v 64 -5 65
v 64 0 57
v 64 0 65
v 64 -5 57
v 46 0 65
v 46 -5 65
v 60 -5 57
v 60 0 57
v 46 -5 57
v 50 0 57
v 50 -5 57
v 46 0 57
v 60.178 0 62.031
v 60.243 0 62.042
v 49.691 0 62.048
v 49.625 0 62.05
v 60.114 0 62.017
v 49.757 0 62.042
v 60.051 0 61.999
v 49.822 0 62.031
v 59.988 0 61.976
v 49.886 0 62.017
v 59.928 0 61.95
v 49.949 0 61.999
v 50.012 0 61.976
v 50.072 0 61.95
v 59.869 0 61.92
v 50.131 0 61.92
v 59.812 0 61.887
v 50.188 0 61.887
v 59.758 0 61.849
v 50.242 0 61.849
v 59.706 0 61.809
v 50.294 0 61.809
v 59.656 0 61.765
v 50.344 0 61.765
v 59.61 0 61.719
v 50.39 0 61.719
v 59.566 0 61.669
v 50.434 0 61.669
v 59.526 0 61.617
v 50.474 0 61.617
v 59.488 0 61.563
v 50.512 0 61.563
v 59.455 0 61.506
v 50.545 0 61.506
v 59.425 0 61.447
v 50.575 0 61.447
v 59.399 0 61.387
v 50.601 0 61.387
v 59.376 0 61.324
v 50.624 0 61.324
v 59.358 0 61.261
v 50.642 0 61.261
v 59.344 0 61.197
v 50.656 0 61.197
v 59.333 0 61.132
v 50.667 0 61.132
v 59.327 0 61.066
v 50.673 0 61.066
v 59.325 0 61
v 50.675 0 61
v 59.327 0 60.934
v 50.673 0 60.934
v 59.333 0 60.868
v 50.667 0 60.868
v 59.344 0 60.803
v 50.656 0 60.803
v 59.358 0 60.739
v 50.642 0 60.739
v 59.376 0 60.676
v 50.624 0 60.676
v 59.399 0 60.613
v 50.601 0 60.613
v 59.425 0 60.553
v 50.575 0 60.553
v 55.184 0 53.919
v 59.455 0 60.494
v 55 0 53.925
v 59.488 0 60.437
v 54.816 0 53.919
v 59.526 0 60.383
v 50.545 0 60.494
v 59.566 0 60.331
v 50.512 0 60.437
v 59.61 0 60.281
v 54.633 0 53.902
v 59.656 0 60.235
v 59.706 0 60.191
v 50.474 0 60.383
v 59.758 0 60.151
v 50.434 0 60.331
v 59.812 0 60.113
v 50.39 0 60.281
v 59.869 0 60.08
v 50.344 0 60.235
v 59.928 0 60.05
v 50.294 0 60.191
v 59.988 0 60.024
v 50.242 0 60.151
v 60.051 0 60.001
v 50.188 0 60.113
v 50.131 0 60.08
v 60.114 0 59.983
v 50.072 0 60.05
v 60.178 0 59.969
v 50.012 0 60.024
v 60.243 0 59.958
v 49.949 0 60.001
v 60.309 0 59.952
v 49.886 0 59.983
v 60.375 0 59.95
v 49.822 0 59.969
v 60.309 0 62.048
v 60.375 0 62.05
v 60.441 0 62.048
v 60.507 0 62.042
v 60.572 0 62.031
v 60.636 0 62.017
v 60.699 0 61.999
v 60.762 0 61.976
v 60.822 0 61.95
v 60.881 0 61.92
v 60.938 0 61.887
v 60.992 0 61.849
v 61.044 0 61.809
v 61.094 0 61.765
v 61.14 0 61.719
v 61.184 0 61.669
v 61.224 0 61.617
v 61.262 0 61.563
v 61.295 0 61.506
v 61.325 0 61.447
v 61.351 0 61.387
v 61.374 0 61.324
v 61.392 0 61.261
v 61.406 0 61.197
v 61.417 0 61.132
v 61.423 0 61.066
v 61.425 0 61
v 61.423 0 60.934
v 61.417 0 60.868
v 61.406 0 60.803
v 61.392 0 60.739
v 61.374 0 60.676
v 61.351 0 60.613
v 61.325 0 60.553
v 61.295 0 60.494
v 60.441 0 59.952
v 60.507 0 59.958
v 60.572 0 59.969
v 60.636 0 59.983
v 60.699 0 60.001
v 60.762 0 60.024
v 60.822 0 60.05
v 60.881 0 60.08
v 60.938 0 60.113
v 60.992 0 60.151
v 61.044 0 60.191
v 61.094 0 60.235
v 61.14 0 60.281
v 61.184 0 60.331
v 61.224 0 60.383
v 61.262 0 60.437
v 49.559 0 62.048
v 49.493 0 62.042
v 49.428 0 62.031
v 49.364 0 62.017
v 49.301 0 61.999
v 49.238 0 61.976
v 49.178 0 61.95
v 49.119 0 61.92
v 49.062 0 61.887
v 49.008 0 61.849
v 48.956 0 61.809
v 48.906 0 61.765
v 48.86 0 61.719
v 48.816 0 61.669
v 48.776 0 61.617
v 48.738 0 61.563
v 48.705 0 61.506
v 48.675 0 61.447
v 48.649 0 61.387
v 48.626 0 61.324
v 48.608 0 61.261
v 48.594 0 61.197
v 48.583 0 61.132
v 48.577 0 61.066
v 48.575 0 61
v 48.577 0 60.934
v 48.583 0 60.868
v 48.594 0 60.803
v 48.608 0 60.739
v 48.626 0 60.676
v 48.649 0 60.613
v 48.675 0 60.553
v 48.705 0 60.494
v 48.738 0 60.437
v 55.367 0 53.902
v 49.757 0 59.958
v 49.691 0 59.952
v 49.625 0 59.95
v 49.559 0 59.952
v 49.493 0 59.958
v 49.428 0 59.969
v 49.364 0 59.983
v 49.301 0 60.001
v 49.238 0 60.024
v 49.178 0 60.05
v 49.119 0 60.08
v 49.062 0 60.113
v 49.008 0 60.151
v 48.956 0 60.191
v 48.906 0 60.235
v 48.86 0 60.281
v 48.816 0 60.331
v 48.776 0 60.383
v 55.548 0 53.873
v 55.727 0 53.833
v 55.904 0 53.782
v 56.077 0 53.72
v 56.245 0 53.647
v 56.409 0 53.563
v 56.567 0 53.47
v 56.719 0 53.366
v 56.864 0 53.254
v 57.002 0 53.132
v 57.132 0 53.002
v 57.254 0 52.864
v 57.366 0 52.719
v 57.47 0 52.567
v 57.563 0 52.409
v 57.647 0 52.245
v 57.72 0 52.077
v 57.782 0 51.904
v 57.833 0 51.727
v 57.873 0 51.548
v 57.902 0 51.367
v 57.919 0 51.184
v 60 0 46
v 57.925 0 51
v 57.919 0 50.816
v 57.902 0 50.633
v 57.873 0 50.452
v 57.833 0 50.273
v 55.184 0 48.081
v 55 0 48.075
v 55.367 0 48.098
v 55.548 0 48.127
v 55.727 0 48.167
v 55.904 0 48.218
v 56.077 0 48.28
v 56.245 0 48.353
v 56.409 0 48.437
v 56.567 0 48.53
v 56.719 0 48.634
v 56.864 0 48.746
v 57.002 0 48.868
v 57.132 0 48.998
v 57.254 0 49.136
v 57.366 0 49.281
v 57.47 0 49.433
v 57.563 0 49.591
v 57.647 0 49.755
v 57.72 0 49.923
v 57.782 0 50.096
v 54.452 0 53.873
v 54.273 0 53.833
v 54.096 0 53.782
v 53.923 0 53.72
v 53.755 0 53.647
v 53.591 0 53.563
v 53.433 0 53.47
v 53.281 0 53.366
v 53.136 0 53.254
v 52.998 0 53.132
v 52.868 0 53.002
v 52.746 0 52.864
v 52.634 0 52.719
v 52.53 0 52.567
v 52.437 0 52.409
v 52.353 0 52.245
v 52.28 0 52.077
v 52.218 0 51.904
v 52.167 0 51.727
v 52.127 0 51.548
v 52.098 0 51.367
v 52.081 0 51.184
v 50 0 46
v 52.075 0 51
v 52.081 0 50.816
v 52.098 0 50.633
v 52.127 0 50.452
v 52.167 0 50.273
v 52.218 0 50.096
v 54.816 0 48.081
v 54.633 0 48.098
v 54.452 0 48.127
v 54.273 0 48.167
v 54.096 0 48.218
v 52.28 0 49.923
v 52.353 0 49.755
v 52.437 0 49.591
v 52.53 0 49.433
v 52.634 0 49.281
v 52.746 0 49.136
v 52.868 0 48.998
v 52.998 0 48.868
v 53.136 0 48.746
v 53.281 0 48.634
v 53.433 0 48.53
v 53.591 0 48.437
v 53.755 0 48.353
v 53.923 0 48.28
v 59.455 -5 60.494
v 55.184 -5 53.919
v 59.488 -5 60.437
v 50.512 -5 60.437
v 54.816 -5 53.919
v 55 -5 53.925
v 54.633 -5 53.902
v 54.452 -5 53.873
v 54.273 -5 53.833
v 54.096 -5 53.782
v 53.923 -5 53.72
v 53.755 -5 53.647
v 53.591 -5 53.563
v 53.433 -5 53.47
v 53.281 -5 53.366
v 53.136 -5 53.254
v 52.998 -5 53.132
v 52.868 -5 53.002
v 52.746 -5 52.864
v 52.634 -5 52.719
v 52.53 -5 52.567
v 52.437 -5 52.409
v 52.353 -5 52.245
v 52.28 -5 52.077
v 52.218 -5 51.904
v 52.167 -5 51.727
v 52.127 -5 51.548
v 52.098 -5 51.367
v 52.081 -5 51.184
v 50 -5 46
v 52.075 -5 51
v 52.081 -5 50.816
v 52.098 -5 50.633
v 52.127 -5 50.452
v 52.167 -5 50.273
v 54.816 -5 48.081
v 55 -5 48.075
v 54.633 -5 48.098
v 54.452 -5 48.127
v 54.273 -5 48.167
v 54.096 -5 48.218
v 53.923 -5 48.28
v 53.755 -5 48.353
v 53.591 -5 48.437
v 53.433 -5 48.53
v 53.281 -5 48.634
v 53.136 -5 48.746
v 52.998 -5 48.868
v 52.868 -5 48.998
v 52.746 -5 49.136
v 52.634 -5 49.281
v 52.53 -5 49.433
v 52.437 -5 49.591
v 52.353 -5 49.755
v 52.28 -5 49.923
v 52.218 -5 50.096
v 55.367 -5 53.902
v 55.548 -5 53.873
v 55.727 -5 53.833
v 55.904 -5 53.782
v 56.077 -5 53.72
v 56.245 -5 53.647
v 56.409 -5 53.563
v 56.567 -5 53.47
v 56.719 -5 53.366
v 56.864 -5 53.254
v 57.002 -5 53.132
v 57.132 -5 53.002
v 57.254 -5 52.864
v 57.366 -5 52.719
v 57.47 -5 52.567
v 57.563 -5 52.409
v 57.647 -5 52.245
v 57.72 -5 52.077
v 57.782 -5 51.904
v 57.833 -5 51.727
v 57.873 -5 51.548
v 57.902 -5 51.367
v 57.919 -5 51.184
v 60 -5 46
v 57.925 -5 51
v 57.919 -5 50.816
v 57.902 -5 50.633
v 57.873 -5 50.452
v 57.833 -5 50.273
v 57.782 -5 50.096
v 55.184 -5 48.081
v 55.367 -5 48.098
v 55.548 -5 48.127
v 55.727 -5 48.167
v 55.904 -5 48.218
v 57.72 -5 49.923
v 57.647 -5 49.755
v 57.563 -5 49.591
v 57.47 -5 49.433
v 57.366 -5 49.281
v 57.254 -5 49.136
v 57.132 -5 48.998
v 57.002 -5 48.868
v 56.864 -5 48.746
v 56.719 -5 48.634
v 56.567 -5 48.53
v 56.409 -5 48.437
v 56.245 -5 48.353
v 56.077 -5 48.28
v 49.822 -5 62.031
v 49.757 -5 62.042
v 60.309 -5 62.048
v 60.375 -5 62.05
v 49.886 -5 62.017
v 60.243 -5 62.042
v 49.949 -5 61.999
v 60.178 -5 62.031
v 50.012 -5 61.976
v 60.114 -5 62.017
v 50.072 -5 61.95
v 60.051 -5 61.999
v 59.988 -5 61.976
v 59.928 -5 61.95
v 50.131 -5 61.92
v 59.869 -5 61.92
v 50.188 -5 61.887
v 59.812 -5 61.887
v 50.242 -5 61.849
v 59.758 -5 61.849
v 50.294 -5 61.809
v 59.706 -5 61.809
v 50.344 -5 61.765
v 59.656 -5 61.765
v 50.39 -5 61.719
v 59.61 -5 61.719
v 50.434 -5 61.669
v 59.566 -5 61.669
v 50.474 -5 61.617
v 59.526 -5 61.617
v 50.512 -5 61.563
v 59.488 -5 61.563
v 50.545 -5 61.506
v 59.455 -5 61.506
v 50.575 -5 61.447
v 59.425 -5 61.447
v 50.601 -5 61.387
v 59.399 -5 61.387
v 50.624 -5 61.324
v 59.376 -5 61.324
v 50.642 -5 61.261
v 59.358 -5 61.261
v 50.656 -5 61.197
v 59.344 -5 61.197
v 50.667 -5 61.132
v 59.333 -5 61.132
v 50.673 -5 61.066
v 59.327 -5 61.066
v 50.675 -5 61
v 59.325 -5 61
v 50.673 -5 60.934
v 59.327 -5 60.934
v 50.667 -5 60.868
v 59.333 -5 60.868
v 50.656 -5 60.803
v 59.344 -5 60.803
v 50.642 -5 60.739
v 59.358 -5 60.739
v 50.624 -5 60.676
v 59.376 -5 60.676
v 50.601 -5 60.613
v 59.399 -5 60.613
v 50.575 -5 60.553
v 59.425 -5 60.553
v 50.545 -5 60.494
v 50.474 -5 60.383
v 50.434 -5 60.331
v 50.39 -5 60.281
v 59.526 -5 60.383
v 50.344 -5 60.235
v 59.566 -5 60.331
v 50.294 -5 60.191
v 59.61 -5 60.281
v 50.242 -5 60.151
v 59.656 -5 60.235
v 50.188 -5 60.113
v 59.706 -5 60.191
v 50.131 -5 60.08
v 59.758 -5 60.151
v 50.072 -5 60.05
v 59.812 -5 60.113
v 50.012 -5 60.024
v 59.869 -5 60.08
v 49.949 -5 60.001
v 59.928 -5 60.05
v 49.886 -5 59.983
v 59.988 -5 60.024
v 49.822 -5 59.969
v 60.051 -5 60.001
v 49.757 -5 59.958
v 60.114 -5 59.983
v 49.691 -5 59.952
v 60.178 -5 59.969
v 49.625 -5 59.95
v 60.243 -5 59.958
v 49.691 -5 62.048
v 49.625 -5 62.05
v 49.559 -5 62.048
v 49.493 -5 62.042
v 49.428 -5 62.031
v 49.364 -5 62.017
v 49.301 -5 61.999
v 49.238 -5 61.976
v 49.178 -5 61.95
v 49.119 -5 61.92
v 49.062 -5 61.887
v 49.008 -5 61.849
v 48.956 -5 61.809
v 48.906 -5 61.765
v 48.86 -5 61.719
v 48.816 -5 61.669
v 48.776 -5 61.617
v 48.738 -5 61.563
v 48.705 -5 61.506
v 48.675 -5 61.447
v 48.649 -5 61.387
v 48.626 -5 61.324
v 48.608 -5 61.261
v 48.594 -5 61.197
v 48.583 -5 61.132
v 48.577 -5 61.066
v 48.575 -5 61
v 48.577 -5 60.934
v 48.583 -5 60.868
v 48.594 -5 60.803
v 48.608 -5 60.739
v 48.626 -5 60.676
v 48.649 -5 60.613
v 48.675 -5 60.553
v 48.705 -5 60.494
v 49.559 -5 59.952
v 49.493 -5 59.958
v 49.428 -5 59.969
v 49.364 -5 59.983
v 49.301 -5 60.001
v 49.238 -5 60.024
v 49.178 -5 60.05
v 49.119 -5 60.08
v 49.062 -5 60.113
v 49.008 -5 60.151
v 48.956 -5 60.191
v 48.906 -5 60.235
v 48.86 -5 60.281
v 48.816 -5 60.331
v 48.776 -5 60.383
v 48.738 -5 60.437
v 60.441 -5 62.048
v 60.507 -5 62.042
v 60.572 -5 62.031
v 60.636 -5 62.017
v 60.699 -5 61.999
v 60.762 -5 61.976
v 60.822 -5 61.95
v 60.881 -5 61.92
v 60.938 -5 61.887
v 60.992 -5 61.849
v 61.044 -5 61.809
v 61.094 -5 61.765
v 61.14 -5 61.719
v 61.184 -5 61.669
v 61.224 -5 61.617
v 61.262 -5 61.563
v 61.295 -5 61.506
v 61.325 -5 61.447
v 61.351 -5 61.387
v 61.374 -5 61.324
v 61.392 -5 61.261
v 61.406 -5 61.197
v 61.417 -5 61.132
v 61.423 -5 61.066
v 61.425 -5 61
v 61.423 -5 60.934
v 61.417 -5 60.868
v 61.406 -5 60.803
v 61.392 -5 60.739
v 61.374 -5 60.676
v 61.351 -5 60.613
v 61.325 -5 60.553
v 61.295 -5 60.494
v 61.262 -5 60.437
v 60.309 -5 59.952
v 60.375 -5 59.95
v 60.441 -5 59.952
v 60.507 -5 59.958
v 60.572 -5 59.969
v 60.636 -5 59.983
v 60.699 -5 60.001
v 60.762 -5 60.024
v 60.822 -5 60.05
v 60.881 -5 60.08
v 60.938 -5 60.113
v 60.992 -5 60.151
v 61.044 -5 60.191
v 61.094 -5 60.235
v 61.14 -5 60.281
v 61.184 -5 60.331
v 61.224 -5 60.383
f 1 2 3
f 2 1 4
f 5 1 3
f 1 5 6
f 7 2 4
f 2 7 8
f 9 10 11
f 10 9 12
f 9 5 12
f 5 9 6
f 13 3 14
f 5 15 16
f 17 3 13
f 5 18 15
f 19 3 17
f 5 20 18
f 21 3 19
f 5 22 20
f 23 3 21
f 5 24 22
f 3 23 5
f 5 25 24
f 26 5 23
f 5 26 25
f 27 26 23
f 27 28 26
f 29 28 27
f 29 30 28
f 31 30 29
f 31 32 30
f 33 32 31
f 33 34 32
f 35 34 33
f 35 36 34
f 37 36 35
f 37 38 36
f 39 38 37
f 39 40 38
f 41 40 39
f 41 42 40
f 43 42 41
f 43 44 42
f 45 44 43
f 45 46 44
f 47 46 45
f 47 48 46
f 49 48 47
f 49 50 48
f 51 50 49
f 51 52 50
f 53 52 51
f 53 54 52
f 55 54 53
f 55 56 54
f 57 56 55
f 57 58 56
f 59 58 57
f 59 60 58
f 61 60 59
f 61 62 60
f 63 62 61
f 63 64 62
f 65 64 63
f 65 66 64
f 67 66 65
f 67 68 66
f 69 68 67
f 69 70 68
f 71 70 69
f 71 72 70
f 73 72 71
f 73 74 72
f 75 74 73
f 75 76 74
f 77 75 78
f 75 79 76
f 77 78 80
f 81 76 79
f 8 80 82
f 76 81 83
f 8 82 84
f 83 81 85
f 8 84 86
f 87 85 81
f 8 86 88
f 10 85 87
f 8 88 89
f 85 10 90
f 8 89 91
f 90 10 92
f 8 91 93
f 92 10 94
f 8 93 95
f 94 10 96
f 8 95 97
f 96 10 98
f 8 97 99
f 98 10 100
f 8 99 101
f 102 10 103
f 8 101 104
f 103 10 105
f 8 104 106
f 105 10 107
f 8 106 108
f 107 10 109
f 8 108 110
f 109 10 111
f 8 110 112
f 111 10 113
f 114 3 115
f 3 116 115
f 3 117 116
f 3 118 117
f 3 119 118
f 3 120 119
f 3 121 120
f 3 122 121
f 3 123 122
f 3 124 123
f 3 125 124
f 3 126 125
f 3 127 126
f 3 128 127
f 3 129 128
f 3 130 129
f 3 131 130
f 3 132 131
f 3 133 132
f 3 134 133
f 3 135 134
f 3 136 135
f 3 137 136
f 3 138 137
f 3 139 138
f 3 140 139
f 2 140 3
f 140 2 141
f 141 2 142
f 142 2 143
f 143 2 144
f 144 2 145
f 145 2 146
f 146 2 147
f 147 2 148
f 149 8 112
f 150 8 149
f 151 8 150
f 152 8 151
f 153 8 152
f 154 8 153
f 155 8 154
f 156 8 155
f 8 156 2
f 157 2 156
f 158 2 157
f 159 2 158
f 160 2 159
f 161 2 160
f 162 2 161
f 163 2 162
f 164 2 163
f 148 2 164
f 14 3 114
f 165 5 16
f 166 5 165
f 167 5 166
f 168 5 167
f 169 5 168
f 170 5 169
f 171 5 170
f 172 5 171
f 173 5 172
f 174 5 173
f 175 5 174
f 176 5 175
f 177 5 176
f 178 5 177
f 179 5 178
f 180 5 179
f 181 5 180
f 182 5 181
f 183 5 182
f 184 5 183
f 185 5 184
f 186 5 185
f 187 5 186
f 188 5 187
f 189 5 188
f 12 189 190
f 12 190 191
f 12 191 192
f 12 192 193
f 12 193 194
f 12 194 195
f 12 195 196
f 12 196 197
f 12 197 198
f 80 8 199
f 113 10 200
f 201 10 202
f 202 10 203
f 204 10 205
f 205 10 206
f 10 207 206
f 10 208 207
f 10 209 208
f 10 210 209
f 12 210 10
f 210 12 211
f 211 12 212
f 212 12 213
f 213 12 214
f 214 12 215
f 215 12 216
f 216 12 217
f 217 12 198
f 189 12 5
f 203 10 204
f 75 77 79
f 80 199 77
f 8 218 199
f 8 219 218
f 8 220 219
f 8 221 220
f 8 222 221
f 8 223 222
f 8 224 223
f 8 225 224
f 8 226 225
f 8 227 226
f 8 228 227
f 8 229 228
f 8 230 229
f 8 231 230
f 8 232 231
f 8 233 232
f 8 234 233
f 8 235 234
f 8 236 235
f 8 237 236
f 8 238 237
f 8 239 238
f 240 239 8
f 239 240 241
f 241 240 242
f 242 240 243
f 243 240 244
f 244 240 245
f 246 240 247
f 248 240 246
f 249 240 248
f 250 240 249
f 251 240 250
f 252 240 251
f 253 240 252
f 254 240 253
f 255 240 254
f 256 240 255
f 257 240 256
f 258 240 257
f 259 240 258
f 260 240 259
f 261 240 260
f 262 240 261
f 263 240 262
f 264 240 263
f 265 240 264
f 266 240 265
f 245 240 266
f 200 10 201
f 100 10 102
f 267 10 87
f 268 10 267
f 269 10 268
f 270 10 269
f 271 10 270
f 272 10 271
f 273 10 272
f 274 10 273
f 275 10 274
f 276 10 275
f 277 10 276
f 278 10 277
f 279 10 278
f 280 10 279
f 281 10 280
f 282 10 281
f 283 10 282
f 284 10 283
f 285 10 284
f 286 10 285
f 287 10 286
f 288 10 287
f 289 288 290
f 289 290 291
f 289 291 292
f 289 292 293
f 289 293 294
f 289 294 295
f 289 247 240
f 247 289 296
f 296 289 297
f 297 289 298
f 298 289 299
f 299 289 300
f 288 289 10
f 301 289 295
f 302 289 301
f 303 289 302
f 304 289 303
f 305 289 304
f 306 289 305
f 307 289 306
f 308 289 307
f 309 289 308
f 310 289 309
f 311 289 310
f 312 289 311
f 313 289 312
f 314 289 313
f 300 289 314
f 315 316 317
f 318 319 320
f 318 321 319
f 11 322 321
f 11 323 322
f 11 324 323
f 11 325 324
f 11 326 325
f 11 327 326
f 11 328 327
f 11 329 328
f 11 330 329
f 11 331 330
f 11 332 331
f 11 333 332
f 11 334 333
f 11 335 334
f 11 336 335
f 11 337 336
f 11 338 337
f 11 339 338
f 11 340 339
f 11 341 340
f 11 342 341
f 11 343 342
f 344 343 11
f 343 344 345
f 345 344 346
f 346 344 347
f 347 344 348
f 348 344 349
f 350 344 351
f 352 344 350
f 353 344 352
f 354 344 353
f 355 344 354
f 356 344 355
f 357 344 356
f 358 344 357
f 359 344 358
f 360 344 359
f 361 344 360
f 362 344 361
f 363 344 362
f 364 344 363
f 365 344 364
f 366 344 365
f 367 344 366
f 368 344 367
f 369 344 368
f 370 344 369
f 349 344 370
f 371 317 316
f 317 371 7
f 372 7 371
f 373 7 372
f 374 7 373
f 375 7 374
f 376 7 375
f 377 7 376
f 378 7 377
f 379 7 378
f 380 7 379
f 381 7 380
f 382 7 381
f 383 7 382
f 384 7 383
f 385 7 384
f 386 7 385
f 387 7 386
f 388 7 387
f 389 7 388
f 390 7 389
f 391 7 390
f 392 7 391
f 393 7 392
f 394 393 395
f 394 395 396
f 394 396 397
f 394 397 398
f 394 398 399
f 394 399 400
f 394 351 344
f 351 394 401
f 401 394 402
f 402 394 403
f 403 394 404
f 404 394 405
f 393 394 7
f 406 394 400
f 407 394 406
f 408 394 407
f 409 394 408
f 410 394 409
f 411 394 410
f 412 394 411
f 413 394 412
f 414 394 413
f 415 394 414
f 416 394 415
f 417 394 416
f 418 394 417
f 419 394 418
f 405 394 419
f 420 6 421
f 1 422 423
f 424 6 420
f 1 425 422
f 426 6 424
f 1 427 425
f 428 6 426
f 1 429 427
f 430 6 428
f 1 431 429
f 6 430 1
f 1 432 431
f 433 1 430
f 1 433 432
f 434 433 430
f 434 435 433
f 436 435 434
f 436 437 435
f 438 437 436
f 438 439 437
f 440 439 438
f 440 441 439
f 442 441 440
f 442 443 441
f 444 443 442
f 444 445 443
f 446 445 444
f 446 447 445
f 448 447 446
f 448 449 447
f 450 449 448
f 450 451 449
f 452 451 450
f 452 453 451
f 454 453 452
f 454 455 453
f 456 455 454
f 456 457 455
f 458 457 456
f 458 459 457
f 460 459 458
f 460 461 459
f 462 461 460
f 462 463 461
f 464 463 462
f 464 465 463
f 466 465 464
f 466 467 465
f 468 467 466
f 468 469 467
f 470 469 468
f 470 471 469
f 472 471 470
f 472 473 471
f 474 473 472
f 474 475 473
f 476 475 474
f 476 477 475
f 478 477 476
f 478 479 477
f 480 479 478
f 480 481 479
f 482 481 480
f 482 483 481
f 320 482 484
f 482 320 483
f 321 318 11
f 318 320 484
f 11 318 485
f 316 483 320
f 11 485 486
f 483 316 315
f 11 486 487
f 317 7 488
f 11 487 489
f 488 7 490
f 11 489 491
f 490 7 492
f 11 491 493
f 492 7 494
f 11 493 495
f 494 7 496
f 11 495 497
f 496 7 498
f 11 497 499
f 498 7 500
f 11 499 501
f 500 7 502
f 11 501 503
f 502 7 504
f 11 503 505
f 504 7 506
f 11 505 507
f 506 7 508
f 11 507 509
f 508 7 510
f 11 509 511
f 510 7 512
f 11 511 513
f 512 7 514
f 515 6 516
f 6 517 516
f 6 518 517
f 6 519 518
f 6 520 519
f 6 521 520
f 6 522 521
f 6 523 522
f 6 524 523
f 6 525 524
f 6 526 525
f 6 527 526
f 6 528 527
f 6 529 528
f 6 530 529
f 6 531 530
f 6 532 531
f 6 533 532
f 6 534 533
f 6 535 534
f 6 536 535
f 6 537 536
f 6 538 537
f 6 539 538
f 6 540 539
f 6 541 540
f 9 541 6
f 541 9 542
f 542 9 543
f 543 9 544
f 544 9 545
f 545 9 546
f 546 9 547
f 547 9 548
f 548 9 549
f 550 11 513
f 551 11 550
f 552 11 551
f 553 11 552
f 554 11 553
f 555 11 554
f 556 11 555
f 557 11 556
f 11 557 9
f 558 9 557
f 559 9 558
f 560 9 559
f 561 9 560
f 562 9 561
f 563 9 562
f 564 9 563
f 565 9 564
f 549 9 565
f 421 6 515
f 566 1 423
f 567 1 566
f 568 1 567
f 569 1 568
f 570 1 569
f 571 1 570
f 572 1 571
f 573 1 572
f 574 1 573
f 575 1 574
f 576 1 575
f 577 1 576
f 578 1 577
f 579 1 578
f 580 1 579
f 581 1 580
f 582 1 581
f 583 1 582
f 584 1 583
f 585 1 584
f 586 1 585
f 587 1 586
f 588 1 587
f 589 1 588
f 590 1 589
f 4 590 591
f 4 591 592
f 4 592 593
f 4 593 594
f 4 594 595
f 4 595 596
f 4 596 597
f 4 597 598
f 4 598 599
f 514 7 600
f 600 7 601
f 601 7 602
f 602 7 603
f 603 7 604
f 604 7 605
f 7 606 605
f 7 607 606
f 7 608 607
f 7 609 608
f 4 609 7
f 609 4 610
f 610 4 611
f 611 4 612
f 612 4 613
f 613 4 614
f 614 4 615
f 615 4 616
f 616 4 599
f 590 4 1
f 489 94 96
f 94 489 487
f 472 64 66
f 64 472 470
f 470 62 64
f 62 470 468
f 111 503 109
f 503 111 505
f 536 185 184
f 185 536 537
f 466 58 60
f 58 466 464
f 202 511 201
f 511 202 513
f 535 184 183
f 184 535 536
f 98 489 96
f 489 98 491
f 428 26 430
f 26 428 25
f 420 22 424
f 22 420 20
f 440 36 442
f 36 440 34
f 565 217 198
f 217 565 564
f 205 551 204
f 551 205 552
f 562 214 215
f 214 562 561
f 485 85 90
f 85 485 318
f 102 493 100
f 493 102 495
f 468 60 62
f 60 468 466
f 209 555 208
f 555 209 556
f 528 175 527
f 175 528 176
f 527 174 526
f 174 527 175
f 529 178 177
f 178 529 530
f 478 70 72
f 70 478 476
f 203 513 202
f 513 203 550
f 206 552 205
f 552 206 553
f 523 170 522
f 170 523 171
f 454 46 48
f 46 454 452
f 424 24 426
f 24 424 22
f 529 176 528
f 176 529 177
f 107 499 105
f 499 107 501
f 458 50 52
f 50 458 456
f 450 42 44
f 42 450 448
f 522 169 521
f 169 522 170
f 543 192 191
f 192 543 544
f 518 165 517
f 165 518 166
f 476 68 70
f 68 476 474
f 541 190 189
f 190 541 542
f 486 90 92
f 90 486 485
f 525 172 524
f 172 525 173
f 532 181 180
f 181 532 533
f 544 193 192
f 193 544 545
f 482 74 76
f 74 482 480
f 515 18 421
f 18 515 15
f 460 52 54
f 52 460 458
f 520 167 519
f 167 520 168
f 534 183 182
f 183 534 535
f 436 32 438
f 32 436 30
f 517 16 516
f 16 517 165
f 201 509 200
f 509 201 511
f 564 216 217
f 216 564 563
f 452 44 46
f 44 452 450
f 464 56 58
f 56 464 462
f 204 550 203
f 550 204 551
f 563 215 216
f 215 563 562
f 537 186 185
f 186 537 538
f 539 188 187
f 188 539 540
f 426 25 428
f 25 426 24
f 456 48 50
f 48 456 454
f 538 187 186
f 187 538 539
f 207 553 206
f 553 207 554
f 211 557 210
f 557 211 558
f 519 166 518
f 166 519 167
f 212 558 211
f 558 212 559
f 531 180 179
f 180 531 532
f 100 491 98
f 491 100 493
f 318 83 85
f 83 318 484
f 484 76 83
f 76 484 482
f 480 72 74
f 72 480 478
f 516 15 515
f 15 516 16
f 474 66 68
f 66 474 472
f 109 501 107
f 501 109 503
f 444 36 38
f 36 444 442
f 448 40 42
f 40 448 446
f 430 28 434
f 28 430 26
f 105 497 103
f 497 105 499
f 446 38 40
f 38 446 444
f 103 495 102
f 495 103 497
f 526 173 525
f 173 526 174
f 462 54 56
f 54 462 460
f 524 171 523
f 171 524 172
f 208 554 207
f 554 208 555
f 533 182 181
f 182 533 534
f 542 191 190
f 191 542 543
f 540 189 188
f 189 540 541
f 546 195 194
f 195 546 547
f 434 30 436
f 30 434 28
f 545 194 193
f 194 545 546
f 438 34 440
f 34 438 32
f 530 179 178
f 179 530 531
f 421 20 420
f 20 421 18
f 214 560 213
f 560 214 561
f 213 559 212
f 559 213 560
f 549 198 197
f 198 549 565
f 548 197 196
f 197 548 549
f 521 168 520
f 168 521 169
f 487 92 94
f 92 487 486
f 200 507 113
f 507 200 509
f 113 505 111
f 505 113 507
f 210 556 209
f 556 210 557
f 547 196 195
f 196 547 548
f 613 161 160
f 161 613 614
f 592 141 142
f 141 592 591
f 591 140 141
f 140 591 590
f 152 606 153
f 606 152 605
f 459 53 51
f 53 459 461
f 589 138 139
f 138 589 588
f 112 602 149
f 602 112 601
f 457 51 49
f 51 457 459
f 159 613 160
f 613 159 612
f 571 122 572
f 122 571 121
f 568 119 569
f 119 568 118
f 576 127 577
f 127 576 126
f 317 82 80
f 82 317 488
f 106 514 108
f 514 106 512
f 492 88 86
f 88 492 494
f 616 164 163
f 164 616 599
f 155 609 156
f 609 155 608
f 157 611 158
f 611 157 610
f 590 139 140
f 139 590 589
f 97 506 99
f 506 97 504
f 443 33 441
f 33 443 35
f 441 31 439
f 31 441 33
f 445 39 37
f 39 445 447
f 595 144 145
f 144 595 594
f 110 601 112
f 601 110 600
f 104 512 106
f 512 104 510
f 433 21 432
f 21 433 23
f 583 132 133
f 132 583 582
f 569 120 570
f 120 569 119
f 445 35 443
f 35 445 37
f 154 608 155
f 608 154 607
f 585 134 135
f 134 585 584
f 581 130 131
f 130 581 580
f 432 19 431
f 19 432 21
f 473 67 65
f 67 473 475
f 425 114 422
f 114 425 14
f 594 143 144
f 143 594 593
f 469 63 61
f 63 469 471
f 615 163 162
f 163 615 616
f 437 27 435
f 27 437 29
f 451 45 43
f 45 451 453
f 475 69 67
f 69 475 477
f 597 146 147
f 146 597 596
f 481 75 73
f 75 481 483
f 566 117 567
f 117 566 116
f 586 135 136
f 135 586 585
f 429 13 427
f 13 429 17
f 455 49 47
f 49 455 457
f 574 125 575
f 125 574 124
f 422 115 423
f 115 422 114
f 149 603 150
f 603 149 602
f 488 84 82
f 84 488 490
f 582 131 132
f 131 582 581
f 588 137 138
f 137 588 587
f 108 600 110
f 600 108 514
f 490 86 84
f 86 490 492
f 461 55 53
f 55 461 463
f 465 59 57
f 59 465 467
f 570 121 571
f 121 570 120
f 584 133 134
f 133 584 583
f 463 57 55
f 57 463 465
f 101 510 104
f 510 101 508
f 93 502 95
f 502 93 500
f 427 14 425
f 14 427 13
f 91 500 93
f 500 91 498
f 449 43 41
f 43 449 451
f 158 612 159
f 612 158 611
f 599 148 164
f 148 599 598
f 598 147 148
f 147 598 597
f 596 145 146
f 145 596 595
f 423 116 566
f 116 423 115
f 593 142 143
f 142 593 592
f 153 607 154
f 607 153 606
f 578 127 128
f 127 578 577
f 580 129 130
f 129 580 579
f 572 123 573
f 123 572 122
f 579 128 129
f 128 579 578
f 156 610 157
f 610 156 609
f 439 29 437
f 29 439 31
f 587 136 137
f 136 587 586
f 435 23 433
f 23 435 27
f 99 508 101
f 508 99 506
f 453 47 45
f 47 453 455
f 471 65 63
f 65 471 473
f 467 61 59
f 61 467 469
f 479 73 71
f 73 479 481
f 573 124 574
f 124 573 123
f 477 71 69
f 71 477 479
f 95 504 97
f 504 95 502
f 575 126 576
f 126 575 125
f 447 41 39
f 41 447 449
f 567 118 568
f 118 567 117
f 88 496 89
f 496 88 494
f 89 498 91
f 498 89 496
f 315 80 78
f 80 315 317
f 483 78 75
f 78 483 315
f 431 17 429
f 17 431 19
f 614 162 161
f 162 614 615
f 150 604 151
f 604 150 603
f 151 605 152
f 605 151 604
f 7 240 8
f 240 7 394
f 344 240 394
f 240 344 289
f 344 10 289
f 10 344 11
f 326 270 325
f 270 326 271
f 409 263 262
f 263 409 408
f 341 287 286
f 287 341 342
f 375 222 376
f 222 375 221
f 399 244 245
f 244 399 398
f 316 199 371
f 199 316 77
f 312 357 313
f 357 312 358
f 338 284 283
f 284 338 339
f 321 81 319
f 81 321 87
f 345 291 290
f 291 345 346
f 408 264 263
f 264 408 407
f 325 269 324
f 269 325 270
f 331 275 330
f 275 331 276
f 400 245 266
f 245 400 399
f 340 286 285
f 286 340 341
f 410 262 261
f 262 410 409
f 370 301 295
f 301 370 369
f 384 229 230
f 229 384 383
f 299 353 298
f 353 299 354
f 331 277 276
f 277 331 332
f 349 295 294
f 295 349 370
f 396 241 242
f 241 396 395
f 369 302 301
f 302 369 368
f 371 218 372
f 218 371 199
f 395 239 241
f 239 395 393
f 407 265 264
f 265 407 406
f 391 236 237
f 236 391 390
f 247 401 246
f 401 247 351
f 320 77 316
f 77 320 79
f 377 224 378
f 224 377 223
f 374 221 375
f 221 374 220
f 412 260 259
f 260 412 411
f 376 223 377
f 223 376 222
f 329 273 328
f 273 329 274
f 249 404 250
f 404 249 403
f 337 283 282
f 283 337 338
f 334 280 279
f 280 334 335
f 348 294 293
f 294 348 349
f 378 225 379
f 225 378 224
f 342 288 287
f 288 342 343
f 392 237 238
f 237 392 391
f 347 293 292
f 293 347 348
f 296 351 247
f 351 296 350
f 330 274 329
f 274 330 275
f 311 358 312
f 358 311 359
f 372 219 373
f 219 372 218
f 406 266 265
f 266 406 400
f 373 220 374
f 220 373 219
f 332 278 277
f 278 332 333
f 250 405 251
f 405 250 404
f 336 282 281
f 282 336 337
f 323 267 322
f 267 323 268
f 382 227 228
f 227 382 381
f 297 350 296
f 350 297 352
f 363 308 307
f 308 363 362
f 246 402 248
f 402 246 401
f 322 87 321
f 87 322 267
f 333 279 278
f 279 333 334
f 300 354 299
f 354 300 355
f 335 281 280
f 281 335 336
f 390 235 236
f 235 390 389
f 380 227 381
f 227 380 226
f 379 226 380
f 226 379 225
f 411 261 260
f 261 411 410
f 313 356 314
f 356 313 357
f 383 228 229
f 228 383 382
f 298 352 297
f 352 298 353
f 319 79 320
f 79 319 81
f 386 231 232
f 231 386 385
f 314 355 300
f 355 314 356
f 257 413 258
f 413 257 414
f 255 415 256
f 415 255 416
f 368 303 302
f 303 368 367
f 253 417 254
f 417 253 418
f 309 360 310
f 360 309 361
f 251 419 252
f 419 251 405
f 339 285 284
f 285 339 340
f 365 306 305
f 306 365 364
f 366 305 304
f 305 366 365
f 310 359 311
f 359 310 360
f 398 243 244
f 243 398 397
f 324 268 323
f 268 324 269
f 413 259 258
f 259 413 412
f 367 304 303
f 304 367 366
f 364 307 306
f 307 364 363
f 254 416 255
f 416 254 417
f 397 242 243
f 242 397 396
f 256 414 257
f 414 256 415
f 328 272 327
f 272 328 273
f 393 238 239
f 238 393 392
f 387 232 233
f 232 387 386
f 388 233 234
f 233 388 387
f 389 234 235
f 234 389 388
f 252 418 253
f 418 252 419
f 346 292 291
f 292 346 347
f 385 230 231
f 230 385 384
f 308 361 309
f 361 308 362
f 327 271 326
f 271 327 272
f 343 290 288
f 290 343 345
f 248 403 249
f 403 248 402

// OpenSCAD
// ----- ----- ----- Declaração de Variáveis ----- ----- ----- //
res=100;
folga1=0.125;

esp=5;
compriObilongo=20;
largObi=5.85;

basePortax=56;
basePortay=2.85;
basePortaz=15;
PortaR=5.7/2;
PortaAlt=basePortay;
entrePorta=(52.7+41.25)/2;

haste1x=30;
haste1z=30;

haste2x=60;
haste2z=10;

haste3x=10;
haste3z=60+20;

haste4x=10;
haste4z=10;

portax=18;
portaz=8;

entreFuros=(8.6+12.9)/2;
rFuro=2.1/2;

vao=0.5;

entrePard=58-22-6*folga1;

// ----- ----- ----- Declaração de Funções ----- ----- ----- //

// ----- ----- ----- MAIN ----- ----- ----- //
translate([0,0,basePortaz])
difference(){
    translate([0,0,0]){
        //cube([haste2x,esp,haste1z]);
        //translate([0,-esp-(3/2)*basePortay,0])cube([haste2x,esp+(3/2)*basePortay,haste1z]);
        //translate([0,0,haste1z])cube([haste2x,esp,haste2z]);
        //translate([0,0,haste1z+haste2z])cube([haste3x,esp,haste3z]);
        //translate([0,0,haste1z+haste2z+haste3z])cube([haste2x,esp,haste2z]);
        //translate([haste2x-haste3x,0,haste1z+haste2z])cube([haste4x,esp,haste4z-portaz]);
        translate([haste2x-haste3x+haste4x/2-portax/2,-esp,haste1z+haste2z+haste4z-portaz])cube([portax,esp,portaz]);
        //translate([haste2x-haste3x+haste4x/2-portax/2,0,haste1z+haste2z+haste4z-portaz])cube([portax,esp,portaz]);//
        //translate([haste2x-haste3x+haste4x/2-portax/2,-2*esp,haste1z+haste2z+haste4z-portaz])cube([portax,esp,portaz]);
        //translate([haste2x-haste3x,0,haste1z+haste2z+haste3z-haste4z-compriObilongo+portaz])cube([haste4x,esp,haste4z+compriObilongo-portaz]);
        //translate([haste2x-haste3x,-esp,haste1z+haste2z+haste3z-haste4z-compriObilongo+portaz])cube([haste4x,esp,haste4z+compriObilongo-portaz+haste4z]);
        //translate([haste2x-haste3x+haste4x/2-portax/2,-esp,haste1z+haste2z+haste3z-haste4z-compriObilongo])cube([portax,esp,portaz]);
        //translate([haste2x-haste3x+haste4x/2-portax/2,-esp,haste1z+haste2z+haste3z-haste4z-compriObilongo])cube([portax,esp,portaz]);
        //translate([haste2x-haste3x+haste4x/2-portax/2,-2*esp,haste1z+haste2z+haste3z-haste4z-compriObilongo])cube([portax,esp,portaz]);
    }
    
    // Furos do Porta
    #translate([-entreFuros/2,-2*esp,0])
    #translate([haste2x-haste4x/2,0,haste1z+haste2z+haste4z-portaz/2])
    #rotate([-90,0,0])
    #cylinder(3*esp,rFuro,rFuro,$fn=res);
    
    #translate([entreFuros/2,-2*esp,0])
    #translate([haste2x-haste4x/2,0,haste1z+haste2z+haste4z-portaz/2])
    #rotate([-90,0,0])
    #cylinder(3*esp,rFuro,rFuro,$fn=res);
    
    #translate([-entreFuros/2,-2*esp,haste1z+haste2z+haste3z-haste4z-20])
    #translate([haste2x-haste4x/2,0,portaz/2])
    #rotate([-90,0,0])
    #cylinder(2*esp,rFuro,rFuro,$fn=res);
    
    #translate([entreFuros/2,-2*esp,haste1z+haste2z+haste3z-haste4z-20])
    #translate([haste2x-haste4x/2,0,portaz/2])
    #rotate([-90,0,0])
    #cylinder(2*esp,rFuro,rFuro,$fn=res);
    
    //Furo Obilongo de Cima
    #hull(){
        #translate([haste2x-haste4x/2,-2*esp,haste1z+haste2z*1.2+haste3z-haste4z-20+(3/2)*portaz])
        #rotate([-90,0,0])
        #cylinder(4*esp,largObi/2,largObi/2,$fn=res);
        
        #translate([0,0,haste4z+compriObilongo-2*portaz+haste2z*0.8])
        #translate([haste2x-haste4x/2,-2*esp,haste1z+haste2z+haste3z-haste4z-20+(3/2)*portaz])
        #rotate([-90,0,0])
        #cylinder(4*esp,largObi/2+folga1,largObi/2+folga1,$fn=res);
    }
    
    // Furo Obilongo de Baixo
    #hull(){
        #translate([haste2x-haste4x/2,-2*esp,haste1z+haste2z*0.8+haste3z-3*haste4z-3*20+(1)*portaz])
        #rotate([-90,0,0])
        #cylinder(4*esp,largObi/2,largObi/2,$fn=res);
        
        #translate([0,0,-(haste4z+compriObilongo-2*portaz+haste2z*0.8)])
        #translate([haste2x-haste4x/2,-2*esp,haste1z+haste2z+haste3z-3*haste4z-3*20+(1)*portaz])
        #rotate([-90,0,0])
        #cylinder(4*esp,largObi/2+folga1,largObi/2+folga1,$fn=res);
    }
    
    #translate([-4*folga1,0,-portaz-(haste4z+compriObilongo-2*portaz+haste2z)])
    #translate([haste2x-haste3x+haste4x/2-portax/2,-2*esp,haste1z+haste2z+haste4z-portaz])
    #cube([portax+8*folga1,2*esp,portaz+haste4z+compriObilongo-2*portaz+haste2z]);
    
    //#translate([haste2x-haste4x/2,-esp,0])
    //#rotate([0,0,45])
    //#translate([-vao/2,-vao/2,0])
    //#cube([vao,vao,haste1z+2*haste2z+haste3z]);
}
/*
difference(){
    translate([haste2x-haste4x/2-basePortax/2,-esp-basePortay/2,0])cube([basePortax,basePortay,basePortaz]);
    
    #translate([haste2x-haste4x/2-entrePorta/2,-esp+basePortay/2,basePortaz/2])
    #rotate([90,0,0])
    #cylinder(PortaAlt,PortaR,PortaR,$fn=res);
   
    #translate([haste2x-haste4x/2+entrePorta/2,-esp+basePortay/2,basePortaz/2])
    #rotate([90,0,0])
    #cylinder(PortaAlt,PortaR,PortaR,$fn=res);
    //entrePorta
}


// Sustentação 1 
poliedro1Points = [[                       haste2x, -(esp+(3/2)*basePortay),         basePortaz],  //0
                   [haste2x-haste4x/2+basePortax/2, -(esp+(3/2)*basePortay),         basePortaz],  //1
                   [haste2x-haste4x/2+basePortax/2,                     esp,         basePortaz],  //2
                   [                       haste2x,                     esp,         basePortaz],  //3
                   [                       haste2x, -(esp+(3/2)*basePortay), basePortaz+haste1z],  //4
                   [                       haste2x,                     esp, basePortaz+haste1z]]; //5
 
poliedro1Faces = [[0,1,2,3],  // baixo
                    [0,1,4],  // frente
                              // cima
                  [1,4,5,2],  // direita
                    [5,3,2],  // trazeira
                  [5,4,0,3]]; // esquerda

translate([haste2x,-(esp+(3/2)*basePortay),basePortaz])cube([-haste4x/2+basePortax/2,esp+(esp+(3/2)*basePortay),10]);

// Sustentação 2
translate([basePortax/2-entrePard/2,0,0])
translate([haste2x-haste4x/2-basePortax/2,-esp-(3/2)*basePortay,0])
cube([entrePard,esp+esp+(3/2)*basePortay,basePortaz]);
*/

difference(){
    // Furo Obilongo de Baixo
    translate([haste2x-haste3x,-esp,haste1z+haste2z+haste3z-haste4z-compriObilongo+compriObilongo+portaz-3*haste4z-3*20+portaz+10])cube([haste4x,esp,haste4z-portaz+haste4z]);
    // Furo Obilongo de Baixo
    #translate([0,0,basePortaz])hull(){
        #translate([haste2x-haste4x/2,-2*esp,haste1z+haste2z*0.8+haste3z-3*haste4z-3*20+(1)*portaz])
        #rotate([-90,0,0])
        #cylinder(4*esp,largObi/2,largObi/2,$fn=res);
        
        //#translate([0,0,-(haste4z+compriObilongo-2*portaz+haste2z*0.8)])
        //#translate([haste2x-haste4x/2,-2*esp,haste1z+haste2z+haste3z-3*haste4z-3*20+(1)*portaz])
        //#rotate([-90,0,0])
        //#cylinder(4*esp,largObi/2+folga1,largObi/2+folga1,$fn=res);
    }
}    
